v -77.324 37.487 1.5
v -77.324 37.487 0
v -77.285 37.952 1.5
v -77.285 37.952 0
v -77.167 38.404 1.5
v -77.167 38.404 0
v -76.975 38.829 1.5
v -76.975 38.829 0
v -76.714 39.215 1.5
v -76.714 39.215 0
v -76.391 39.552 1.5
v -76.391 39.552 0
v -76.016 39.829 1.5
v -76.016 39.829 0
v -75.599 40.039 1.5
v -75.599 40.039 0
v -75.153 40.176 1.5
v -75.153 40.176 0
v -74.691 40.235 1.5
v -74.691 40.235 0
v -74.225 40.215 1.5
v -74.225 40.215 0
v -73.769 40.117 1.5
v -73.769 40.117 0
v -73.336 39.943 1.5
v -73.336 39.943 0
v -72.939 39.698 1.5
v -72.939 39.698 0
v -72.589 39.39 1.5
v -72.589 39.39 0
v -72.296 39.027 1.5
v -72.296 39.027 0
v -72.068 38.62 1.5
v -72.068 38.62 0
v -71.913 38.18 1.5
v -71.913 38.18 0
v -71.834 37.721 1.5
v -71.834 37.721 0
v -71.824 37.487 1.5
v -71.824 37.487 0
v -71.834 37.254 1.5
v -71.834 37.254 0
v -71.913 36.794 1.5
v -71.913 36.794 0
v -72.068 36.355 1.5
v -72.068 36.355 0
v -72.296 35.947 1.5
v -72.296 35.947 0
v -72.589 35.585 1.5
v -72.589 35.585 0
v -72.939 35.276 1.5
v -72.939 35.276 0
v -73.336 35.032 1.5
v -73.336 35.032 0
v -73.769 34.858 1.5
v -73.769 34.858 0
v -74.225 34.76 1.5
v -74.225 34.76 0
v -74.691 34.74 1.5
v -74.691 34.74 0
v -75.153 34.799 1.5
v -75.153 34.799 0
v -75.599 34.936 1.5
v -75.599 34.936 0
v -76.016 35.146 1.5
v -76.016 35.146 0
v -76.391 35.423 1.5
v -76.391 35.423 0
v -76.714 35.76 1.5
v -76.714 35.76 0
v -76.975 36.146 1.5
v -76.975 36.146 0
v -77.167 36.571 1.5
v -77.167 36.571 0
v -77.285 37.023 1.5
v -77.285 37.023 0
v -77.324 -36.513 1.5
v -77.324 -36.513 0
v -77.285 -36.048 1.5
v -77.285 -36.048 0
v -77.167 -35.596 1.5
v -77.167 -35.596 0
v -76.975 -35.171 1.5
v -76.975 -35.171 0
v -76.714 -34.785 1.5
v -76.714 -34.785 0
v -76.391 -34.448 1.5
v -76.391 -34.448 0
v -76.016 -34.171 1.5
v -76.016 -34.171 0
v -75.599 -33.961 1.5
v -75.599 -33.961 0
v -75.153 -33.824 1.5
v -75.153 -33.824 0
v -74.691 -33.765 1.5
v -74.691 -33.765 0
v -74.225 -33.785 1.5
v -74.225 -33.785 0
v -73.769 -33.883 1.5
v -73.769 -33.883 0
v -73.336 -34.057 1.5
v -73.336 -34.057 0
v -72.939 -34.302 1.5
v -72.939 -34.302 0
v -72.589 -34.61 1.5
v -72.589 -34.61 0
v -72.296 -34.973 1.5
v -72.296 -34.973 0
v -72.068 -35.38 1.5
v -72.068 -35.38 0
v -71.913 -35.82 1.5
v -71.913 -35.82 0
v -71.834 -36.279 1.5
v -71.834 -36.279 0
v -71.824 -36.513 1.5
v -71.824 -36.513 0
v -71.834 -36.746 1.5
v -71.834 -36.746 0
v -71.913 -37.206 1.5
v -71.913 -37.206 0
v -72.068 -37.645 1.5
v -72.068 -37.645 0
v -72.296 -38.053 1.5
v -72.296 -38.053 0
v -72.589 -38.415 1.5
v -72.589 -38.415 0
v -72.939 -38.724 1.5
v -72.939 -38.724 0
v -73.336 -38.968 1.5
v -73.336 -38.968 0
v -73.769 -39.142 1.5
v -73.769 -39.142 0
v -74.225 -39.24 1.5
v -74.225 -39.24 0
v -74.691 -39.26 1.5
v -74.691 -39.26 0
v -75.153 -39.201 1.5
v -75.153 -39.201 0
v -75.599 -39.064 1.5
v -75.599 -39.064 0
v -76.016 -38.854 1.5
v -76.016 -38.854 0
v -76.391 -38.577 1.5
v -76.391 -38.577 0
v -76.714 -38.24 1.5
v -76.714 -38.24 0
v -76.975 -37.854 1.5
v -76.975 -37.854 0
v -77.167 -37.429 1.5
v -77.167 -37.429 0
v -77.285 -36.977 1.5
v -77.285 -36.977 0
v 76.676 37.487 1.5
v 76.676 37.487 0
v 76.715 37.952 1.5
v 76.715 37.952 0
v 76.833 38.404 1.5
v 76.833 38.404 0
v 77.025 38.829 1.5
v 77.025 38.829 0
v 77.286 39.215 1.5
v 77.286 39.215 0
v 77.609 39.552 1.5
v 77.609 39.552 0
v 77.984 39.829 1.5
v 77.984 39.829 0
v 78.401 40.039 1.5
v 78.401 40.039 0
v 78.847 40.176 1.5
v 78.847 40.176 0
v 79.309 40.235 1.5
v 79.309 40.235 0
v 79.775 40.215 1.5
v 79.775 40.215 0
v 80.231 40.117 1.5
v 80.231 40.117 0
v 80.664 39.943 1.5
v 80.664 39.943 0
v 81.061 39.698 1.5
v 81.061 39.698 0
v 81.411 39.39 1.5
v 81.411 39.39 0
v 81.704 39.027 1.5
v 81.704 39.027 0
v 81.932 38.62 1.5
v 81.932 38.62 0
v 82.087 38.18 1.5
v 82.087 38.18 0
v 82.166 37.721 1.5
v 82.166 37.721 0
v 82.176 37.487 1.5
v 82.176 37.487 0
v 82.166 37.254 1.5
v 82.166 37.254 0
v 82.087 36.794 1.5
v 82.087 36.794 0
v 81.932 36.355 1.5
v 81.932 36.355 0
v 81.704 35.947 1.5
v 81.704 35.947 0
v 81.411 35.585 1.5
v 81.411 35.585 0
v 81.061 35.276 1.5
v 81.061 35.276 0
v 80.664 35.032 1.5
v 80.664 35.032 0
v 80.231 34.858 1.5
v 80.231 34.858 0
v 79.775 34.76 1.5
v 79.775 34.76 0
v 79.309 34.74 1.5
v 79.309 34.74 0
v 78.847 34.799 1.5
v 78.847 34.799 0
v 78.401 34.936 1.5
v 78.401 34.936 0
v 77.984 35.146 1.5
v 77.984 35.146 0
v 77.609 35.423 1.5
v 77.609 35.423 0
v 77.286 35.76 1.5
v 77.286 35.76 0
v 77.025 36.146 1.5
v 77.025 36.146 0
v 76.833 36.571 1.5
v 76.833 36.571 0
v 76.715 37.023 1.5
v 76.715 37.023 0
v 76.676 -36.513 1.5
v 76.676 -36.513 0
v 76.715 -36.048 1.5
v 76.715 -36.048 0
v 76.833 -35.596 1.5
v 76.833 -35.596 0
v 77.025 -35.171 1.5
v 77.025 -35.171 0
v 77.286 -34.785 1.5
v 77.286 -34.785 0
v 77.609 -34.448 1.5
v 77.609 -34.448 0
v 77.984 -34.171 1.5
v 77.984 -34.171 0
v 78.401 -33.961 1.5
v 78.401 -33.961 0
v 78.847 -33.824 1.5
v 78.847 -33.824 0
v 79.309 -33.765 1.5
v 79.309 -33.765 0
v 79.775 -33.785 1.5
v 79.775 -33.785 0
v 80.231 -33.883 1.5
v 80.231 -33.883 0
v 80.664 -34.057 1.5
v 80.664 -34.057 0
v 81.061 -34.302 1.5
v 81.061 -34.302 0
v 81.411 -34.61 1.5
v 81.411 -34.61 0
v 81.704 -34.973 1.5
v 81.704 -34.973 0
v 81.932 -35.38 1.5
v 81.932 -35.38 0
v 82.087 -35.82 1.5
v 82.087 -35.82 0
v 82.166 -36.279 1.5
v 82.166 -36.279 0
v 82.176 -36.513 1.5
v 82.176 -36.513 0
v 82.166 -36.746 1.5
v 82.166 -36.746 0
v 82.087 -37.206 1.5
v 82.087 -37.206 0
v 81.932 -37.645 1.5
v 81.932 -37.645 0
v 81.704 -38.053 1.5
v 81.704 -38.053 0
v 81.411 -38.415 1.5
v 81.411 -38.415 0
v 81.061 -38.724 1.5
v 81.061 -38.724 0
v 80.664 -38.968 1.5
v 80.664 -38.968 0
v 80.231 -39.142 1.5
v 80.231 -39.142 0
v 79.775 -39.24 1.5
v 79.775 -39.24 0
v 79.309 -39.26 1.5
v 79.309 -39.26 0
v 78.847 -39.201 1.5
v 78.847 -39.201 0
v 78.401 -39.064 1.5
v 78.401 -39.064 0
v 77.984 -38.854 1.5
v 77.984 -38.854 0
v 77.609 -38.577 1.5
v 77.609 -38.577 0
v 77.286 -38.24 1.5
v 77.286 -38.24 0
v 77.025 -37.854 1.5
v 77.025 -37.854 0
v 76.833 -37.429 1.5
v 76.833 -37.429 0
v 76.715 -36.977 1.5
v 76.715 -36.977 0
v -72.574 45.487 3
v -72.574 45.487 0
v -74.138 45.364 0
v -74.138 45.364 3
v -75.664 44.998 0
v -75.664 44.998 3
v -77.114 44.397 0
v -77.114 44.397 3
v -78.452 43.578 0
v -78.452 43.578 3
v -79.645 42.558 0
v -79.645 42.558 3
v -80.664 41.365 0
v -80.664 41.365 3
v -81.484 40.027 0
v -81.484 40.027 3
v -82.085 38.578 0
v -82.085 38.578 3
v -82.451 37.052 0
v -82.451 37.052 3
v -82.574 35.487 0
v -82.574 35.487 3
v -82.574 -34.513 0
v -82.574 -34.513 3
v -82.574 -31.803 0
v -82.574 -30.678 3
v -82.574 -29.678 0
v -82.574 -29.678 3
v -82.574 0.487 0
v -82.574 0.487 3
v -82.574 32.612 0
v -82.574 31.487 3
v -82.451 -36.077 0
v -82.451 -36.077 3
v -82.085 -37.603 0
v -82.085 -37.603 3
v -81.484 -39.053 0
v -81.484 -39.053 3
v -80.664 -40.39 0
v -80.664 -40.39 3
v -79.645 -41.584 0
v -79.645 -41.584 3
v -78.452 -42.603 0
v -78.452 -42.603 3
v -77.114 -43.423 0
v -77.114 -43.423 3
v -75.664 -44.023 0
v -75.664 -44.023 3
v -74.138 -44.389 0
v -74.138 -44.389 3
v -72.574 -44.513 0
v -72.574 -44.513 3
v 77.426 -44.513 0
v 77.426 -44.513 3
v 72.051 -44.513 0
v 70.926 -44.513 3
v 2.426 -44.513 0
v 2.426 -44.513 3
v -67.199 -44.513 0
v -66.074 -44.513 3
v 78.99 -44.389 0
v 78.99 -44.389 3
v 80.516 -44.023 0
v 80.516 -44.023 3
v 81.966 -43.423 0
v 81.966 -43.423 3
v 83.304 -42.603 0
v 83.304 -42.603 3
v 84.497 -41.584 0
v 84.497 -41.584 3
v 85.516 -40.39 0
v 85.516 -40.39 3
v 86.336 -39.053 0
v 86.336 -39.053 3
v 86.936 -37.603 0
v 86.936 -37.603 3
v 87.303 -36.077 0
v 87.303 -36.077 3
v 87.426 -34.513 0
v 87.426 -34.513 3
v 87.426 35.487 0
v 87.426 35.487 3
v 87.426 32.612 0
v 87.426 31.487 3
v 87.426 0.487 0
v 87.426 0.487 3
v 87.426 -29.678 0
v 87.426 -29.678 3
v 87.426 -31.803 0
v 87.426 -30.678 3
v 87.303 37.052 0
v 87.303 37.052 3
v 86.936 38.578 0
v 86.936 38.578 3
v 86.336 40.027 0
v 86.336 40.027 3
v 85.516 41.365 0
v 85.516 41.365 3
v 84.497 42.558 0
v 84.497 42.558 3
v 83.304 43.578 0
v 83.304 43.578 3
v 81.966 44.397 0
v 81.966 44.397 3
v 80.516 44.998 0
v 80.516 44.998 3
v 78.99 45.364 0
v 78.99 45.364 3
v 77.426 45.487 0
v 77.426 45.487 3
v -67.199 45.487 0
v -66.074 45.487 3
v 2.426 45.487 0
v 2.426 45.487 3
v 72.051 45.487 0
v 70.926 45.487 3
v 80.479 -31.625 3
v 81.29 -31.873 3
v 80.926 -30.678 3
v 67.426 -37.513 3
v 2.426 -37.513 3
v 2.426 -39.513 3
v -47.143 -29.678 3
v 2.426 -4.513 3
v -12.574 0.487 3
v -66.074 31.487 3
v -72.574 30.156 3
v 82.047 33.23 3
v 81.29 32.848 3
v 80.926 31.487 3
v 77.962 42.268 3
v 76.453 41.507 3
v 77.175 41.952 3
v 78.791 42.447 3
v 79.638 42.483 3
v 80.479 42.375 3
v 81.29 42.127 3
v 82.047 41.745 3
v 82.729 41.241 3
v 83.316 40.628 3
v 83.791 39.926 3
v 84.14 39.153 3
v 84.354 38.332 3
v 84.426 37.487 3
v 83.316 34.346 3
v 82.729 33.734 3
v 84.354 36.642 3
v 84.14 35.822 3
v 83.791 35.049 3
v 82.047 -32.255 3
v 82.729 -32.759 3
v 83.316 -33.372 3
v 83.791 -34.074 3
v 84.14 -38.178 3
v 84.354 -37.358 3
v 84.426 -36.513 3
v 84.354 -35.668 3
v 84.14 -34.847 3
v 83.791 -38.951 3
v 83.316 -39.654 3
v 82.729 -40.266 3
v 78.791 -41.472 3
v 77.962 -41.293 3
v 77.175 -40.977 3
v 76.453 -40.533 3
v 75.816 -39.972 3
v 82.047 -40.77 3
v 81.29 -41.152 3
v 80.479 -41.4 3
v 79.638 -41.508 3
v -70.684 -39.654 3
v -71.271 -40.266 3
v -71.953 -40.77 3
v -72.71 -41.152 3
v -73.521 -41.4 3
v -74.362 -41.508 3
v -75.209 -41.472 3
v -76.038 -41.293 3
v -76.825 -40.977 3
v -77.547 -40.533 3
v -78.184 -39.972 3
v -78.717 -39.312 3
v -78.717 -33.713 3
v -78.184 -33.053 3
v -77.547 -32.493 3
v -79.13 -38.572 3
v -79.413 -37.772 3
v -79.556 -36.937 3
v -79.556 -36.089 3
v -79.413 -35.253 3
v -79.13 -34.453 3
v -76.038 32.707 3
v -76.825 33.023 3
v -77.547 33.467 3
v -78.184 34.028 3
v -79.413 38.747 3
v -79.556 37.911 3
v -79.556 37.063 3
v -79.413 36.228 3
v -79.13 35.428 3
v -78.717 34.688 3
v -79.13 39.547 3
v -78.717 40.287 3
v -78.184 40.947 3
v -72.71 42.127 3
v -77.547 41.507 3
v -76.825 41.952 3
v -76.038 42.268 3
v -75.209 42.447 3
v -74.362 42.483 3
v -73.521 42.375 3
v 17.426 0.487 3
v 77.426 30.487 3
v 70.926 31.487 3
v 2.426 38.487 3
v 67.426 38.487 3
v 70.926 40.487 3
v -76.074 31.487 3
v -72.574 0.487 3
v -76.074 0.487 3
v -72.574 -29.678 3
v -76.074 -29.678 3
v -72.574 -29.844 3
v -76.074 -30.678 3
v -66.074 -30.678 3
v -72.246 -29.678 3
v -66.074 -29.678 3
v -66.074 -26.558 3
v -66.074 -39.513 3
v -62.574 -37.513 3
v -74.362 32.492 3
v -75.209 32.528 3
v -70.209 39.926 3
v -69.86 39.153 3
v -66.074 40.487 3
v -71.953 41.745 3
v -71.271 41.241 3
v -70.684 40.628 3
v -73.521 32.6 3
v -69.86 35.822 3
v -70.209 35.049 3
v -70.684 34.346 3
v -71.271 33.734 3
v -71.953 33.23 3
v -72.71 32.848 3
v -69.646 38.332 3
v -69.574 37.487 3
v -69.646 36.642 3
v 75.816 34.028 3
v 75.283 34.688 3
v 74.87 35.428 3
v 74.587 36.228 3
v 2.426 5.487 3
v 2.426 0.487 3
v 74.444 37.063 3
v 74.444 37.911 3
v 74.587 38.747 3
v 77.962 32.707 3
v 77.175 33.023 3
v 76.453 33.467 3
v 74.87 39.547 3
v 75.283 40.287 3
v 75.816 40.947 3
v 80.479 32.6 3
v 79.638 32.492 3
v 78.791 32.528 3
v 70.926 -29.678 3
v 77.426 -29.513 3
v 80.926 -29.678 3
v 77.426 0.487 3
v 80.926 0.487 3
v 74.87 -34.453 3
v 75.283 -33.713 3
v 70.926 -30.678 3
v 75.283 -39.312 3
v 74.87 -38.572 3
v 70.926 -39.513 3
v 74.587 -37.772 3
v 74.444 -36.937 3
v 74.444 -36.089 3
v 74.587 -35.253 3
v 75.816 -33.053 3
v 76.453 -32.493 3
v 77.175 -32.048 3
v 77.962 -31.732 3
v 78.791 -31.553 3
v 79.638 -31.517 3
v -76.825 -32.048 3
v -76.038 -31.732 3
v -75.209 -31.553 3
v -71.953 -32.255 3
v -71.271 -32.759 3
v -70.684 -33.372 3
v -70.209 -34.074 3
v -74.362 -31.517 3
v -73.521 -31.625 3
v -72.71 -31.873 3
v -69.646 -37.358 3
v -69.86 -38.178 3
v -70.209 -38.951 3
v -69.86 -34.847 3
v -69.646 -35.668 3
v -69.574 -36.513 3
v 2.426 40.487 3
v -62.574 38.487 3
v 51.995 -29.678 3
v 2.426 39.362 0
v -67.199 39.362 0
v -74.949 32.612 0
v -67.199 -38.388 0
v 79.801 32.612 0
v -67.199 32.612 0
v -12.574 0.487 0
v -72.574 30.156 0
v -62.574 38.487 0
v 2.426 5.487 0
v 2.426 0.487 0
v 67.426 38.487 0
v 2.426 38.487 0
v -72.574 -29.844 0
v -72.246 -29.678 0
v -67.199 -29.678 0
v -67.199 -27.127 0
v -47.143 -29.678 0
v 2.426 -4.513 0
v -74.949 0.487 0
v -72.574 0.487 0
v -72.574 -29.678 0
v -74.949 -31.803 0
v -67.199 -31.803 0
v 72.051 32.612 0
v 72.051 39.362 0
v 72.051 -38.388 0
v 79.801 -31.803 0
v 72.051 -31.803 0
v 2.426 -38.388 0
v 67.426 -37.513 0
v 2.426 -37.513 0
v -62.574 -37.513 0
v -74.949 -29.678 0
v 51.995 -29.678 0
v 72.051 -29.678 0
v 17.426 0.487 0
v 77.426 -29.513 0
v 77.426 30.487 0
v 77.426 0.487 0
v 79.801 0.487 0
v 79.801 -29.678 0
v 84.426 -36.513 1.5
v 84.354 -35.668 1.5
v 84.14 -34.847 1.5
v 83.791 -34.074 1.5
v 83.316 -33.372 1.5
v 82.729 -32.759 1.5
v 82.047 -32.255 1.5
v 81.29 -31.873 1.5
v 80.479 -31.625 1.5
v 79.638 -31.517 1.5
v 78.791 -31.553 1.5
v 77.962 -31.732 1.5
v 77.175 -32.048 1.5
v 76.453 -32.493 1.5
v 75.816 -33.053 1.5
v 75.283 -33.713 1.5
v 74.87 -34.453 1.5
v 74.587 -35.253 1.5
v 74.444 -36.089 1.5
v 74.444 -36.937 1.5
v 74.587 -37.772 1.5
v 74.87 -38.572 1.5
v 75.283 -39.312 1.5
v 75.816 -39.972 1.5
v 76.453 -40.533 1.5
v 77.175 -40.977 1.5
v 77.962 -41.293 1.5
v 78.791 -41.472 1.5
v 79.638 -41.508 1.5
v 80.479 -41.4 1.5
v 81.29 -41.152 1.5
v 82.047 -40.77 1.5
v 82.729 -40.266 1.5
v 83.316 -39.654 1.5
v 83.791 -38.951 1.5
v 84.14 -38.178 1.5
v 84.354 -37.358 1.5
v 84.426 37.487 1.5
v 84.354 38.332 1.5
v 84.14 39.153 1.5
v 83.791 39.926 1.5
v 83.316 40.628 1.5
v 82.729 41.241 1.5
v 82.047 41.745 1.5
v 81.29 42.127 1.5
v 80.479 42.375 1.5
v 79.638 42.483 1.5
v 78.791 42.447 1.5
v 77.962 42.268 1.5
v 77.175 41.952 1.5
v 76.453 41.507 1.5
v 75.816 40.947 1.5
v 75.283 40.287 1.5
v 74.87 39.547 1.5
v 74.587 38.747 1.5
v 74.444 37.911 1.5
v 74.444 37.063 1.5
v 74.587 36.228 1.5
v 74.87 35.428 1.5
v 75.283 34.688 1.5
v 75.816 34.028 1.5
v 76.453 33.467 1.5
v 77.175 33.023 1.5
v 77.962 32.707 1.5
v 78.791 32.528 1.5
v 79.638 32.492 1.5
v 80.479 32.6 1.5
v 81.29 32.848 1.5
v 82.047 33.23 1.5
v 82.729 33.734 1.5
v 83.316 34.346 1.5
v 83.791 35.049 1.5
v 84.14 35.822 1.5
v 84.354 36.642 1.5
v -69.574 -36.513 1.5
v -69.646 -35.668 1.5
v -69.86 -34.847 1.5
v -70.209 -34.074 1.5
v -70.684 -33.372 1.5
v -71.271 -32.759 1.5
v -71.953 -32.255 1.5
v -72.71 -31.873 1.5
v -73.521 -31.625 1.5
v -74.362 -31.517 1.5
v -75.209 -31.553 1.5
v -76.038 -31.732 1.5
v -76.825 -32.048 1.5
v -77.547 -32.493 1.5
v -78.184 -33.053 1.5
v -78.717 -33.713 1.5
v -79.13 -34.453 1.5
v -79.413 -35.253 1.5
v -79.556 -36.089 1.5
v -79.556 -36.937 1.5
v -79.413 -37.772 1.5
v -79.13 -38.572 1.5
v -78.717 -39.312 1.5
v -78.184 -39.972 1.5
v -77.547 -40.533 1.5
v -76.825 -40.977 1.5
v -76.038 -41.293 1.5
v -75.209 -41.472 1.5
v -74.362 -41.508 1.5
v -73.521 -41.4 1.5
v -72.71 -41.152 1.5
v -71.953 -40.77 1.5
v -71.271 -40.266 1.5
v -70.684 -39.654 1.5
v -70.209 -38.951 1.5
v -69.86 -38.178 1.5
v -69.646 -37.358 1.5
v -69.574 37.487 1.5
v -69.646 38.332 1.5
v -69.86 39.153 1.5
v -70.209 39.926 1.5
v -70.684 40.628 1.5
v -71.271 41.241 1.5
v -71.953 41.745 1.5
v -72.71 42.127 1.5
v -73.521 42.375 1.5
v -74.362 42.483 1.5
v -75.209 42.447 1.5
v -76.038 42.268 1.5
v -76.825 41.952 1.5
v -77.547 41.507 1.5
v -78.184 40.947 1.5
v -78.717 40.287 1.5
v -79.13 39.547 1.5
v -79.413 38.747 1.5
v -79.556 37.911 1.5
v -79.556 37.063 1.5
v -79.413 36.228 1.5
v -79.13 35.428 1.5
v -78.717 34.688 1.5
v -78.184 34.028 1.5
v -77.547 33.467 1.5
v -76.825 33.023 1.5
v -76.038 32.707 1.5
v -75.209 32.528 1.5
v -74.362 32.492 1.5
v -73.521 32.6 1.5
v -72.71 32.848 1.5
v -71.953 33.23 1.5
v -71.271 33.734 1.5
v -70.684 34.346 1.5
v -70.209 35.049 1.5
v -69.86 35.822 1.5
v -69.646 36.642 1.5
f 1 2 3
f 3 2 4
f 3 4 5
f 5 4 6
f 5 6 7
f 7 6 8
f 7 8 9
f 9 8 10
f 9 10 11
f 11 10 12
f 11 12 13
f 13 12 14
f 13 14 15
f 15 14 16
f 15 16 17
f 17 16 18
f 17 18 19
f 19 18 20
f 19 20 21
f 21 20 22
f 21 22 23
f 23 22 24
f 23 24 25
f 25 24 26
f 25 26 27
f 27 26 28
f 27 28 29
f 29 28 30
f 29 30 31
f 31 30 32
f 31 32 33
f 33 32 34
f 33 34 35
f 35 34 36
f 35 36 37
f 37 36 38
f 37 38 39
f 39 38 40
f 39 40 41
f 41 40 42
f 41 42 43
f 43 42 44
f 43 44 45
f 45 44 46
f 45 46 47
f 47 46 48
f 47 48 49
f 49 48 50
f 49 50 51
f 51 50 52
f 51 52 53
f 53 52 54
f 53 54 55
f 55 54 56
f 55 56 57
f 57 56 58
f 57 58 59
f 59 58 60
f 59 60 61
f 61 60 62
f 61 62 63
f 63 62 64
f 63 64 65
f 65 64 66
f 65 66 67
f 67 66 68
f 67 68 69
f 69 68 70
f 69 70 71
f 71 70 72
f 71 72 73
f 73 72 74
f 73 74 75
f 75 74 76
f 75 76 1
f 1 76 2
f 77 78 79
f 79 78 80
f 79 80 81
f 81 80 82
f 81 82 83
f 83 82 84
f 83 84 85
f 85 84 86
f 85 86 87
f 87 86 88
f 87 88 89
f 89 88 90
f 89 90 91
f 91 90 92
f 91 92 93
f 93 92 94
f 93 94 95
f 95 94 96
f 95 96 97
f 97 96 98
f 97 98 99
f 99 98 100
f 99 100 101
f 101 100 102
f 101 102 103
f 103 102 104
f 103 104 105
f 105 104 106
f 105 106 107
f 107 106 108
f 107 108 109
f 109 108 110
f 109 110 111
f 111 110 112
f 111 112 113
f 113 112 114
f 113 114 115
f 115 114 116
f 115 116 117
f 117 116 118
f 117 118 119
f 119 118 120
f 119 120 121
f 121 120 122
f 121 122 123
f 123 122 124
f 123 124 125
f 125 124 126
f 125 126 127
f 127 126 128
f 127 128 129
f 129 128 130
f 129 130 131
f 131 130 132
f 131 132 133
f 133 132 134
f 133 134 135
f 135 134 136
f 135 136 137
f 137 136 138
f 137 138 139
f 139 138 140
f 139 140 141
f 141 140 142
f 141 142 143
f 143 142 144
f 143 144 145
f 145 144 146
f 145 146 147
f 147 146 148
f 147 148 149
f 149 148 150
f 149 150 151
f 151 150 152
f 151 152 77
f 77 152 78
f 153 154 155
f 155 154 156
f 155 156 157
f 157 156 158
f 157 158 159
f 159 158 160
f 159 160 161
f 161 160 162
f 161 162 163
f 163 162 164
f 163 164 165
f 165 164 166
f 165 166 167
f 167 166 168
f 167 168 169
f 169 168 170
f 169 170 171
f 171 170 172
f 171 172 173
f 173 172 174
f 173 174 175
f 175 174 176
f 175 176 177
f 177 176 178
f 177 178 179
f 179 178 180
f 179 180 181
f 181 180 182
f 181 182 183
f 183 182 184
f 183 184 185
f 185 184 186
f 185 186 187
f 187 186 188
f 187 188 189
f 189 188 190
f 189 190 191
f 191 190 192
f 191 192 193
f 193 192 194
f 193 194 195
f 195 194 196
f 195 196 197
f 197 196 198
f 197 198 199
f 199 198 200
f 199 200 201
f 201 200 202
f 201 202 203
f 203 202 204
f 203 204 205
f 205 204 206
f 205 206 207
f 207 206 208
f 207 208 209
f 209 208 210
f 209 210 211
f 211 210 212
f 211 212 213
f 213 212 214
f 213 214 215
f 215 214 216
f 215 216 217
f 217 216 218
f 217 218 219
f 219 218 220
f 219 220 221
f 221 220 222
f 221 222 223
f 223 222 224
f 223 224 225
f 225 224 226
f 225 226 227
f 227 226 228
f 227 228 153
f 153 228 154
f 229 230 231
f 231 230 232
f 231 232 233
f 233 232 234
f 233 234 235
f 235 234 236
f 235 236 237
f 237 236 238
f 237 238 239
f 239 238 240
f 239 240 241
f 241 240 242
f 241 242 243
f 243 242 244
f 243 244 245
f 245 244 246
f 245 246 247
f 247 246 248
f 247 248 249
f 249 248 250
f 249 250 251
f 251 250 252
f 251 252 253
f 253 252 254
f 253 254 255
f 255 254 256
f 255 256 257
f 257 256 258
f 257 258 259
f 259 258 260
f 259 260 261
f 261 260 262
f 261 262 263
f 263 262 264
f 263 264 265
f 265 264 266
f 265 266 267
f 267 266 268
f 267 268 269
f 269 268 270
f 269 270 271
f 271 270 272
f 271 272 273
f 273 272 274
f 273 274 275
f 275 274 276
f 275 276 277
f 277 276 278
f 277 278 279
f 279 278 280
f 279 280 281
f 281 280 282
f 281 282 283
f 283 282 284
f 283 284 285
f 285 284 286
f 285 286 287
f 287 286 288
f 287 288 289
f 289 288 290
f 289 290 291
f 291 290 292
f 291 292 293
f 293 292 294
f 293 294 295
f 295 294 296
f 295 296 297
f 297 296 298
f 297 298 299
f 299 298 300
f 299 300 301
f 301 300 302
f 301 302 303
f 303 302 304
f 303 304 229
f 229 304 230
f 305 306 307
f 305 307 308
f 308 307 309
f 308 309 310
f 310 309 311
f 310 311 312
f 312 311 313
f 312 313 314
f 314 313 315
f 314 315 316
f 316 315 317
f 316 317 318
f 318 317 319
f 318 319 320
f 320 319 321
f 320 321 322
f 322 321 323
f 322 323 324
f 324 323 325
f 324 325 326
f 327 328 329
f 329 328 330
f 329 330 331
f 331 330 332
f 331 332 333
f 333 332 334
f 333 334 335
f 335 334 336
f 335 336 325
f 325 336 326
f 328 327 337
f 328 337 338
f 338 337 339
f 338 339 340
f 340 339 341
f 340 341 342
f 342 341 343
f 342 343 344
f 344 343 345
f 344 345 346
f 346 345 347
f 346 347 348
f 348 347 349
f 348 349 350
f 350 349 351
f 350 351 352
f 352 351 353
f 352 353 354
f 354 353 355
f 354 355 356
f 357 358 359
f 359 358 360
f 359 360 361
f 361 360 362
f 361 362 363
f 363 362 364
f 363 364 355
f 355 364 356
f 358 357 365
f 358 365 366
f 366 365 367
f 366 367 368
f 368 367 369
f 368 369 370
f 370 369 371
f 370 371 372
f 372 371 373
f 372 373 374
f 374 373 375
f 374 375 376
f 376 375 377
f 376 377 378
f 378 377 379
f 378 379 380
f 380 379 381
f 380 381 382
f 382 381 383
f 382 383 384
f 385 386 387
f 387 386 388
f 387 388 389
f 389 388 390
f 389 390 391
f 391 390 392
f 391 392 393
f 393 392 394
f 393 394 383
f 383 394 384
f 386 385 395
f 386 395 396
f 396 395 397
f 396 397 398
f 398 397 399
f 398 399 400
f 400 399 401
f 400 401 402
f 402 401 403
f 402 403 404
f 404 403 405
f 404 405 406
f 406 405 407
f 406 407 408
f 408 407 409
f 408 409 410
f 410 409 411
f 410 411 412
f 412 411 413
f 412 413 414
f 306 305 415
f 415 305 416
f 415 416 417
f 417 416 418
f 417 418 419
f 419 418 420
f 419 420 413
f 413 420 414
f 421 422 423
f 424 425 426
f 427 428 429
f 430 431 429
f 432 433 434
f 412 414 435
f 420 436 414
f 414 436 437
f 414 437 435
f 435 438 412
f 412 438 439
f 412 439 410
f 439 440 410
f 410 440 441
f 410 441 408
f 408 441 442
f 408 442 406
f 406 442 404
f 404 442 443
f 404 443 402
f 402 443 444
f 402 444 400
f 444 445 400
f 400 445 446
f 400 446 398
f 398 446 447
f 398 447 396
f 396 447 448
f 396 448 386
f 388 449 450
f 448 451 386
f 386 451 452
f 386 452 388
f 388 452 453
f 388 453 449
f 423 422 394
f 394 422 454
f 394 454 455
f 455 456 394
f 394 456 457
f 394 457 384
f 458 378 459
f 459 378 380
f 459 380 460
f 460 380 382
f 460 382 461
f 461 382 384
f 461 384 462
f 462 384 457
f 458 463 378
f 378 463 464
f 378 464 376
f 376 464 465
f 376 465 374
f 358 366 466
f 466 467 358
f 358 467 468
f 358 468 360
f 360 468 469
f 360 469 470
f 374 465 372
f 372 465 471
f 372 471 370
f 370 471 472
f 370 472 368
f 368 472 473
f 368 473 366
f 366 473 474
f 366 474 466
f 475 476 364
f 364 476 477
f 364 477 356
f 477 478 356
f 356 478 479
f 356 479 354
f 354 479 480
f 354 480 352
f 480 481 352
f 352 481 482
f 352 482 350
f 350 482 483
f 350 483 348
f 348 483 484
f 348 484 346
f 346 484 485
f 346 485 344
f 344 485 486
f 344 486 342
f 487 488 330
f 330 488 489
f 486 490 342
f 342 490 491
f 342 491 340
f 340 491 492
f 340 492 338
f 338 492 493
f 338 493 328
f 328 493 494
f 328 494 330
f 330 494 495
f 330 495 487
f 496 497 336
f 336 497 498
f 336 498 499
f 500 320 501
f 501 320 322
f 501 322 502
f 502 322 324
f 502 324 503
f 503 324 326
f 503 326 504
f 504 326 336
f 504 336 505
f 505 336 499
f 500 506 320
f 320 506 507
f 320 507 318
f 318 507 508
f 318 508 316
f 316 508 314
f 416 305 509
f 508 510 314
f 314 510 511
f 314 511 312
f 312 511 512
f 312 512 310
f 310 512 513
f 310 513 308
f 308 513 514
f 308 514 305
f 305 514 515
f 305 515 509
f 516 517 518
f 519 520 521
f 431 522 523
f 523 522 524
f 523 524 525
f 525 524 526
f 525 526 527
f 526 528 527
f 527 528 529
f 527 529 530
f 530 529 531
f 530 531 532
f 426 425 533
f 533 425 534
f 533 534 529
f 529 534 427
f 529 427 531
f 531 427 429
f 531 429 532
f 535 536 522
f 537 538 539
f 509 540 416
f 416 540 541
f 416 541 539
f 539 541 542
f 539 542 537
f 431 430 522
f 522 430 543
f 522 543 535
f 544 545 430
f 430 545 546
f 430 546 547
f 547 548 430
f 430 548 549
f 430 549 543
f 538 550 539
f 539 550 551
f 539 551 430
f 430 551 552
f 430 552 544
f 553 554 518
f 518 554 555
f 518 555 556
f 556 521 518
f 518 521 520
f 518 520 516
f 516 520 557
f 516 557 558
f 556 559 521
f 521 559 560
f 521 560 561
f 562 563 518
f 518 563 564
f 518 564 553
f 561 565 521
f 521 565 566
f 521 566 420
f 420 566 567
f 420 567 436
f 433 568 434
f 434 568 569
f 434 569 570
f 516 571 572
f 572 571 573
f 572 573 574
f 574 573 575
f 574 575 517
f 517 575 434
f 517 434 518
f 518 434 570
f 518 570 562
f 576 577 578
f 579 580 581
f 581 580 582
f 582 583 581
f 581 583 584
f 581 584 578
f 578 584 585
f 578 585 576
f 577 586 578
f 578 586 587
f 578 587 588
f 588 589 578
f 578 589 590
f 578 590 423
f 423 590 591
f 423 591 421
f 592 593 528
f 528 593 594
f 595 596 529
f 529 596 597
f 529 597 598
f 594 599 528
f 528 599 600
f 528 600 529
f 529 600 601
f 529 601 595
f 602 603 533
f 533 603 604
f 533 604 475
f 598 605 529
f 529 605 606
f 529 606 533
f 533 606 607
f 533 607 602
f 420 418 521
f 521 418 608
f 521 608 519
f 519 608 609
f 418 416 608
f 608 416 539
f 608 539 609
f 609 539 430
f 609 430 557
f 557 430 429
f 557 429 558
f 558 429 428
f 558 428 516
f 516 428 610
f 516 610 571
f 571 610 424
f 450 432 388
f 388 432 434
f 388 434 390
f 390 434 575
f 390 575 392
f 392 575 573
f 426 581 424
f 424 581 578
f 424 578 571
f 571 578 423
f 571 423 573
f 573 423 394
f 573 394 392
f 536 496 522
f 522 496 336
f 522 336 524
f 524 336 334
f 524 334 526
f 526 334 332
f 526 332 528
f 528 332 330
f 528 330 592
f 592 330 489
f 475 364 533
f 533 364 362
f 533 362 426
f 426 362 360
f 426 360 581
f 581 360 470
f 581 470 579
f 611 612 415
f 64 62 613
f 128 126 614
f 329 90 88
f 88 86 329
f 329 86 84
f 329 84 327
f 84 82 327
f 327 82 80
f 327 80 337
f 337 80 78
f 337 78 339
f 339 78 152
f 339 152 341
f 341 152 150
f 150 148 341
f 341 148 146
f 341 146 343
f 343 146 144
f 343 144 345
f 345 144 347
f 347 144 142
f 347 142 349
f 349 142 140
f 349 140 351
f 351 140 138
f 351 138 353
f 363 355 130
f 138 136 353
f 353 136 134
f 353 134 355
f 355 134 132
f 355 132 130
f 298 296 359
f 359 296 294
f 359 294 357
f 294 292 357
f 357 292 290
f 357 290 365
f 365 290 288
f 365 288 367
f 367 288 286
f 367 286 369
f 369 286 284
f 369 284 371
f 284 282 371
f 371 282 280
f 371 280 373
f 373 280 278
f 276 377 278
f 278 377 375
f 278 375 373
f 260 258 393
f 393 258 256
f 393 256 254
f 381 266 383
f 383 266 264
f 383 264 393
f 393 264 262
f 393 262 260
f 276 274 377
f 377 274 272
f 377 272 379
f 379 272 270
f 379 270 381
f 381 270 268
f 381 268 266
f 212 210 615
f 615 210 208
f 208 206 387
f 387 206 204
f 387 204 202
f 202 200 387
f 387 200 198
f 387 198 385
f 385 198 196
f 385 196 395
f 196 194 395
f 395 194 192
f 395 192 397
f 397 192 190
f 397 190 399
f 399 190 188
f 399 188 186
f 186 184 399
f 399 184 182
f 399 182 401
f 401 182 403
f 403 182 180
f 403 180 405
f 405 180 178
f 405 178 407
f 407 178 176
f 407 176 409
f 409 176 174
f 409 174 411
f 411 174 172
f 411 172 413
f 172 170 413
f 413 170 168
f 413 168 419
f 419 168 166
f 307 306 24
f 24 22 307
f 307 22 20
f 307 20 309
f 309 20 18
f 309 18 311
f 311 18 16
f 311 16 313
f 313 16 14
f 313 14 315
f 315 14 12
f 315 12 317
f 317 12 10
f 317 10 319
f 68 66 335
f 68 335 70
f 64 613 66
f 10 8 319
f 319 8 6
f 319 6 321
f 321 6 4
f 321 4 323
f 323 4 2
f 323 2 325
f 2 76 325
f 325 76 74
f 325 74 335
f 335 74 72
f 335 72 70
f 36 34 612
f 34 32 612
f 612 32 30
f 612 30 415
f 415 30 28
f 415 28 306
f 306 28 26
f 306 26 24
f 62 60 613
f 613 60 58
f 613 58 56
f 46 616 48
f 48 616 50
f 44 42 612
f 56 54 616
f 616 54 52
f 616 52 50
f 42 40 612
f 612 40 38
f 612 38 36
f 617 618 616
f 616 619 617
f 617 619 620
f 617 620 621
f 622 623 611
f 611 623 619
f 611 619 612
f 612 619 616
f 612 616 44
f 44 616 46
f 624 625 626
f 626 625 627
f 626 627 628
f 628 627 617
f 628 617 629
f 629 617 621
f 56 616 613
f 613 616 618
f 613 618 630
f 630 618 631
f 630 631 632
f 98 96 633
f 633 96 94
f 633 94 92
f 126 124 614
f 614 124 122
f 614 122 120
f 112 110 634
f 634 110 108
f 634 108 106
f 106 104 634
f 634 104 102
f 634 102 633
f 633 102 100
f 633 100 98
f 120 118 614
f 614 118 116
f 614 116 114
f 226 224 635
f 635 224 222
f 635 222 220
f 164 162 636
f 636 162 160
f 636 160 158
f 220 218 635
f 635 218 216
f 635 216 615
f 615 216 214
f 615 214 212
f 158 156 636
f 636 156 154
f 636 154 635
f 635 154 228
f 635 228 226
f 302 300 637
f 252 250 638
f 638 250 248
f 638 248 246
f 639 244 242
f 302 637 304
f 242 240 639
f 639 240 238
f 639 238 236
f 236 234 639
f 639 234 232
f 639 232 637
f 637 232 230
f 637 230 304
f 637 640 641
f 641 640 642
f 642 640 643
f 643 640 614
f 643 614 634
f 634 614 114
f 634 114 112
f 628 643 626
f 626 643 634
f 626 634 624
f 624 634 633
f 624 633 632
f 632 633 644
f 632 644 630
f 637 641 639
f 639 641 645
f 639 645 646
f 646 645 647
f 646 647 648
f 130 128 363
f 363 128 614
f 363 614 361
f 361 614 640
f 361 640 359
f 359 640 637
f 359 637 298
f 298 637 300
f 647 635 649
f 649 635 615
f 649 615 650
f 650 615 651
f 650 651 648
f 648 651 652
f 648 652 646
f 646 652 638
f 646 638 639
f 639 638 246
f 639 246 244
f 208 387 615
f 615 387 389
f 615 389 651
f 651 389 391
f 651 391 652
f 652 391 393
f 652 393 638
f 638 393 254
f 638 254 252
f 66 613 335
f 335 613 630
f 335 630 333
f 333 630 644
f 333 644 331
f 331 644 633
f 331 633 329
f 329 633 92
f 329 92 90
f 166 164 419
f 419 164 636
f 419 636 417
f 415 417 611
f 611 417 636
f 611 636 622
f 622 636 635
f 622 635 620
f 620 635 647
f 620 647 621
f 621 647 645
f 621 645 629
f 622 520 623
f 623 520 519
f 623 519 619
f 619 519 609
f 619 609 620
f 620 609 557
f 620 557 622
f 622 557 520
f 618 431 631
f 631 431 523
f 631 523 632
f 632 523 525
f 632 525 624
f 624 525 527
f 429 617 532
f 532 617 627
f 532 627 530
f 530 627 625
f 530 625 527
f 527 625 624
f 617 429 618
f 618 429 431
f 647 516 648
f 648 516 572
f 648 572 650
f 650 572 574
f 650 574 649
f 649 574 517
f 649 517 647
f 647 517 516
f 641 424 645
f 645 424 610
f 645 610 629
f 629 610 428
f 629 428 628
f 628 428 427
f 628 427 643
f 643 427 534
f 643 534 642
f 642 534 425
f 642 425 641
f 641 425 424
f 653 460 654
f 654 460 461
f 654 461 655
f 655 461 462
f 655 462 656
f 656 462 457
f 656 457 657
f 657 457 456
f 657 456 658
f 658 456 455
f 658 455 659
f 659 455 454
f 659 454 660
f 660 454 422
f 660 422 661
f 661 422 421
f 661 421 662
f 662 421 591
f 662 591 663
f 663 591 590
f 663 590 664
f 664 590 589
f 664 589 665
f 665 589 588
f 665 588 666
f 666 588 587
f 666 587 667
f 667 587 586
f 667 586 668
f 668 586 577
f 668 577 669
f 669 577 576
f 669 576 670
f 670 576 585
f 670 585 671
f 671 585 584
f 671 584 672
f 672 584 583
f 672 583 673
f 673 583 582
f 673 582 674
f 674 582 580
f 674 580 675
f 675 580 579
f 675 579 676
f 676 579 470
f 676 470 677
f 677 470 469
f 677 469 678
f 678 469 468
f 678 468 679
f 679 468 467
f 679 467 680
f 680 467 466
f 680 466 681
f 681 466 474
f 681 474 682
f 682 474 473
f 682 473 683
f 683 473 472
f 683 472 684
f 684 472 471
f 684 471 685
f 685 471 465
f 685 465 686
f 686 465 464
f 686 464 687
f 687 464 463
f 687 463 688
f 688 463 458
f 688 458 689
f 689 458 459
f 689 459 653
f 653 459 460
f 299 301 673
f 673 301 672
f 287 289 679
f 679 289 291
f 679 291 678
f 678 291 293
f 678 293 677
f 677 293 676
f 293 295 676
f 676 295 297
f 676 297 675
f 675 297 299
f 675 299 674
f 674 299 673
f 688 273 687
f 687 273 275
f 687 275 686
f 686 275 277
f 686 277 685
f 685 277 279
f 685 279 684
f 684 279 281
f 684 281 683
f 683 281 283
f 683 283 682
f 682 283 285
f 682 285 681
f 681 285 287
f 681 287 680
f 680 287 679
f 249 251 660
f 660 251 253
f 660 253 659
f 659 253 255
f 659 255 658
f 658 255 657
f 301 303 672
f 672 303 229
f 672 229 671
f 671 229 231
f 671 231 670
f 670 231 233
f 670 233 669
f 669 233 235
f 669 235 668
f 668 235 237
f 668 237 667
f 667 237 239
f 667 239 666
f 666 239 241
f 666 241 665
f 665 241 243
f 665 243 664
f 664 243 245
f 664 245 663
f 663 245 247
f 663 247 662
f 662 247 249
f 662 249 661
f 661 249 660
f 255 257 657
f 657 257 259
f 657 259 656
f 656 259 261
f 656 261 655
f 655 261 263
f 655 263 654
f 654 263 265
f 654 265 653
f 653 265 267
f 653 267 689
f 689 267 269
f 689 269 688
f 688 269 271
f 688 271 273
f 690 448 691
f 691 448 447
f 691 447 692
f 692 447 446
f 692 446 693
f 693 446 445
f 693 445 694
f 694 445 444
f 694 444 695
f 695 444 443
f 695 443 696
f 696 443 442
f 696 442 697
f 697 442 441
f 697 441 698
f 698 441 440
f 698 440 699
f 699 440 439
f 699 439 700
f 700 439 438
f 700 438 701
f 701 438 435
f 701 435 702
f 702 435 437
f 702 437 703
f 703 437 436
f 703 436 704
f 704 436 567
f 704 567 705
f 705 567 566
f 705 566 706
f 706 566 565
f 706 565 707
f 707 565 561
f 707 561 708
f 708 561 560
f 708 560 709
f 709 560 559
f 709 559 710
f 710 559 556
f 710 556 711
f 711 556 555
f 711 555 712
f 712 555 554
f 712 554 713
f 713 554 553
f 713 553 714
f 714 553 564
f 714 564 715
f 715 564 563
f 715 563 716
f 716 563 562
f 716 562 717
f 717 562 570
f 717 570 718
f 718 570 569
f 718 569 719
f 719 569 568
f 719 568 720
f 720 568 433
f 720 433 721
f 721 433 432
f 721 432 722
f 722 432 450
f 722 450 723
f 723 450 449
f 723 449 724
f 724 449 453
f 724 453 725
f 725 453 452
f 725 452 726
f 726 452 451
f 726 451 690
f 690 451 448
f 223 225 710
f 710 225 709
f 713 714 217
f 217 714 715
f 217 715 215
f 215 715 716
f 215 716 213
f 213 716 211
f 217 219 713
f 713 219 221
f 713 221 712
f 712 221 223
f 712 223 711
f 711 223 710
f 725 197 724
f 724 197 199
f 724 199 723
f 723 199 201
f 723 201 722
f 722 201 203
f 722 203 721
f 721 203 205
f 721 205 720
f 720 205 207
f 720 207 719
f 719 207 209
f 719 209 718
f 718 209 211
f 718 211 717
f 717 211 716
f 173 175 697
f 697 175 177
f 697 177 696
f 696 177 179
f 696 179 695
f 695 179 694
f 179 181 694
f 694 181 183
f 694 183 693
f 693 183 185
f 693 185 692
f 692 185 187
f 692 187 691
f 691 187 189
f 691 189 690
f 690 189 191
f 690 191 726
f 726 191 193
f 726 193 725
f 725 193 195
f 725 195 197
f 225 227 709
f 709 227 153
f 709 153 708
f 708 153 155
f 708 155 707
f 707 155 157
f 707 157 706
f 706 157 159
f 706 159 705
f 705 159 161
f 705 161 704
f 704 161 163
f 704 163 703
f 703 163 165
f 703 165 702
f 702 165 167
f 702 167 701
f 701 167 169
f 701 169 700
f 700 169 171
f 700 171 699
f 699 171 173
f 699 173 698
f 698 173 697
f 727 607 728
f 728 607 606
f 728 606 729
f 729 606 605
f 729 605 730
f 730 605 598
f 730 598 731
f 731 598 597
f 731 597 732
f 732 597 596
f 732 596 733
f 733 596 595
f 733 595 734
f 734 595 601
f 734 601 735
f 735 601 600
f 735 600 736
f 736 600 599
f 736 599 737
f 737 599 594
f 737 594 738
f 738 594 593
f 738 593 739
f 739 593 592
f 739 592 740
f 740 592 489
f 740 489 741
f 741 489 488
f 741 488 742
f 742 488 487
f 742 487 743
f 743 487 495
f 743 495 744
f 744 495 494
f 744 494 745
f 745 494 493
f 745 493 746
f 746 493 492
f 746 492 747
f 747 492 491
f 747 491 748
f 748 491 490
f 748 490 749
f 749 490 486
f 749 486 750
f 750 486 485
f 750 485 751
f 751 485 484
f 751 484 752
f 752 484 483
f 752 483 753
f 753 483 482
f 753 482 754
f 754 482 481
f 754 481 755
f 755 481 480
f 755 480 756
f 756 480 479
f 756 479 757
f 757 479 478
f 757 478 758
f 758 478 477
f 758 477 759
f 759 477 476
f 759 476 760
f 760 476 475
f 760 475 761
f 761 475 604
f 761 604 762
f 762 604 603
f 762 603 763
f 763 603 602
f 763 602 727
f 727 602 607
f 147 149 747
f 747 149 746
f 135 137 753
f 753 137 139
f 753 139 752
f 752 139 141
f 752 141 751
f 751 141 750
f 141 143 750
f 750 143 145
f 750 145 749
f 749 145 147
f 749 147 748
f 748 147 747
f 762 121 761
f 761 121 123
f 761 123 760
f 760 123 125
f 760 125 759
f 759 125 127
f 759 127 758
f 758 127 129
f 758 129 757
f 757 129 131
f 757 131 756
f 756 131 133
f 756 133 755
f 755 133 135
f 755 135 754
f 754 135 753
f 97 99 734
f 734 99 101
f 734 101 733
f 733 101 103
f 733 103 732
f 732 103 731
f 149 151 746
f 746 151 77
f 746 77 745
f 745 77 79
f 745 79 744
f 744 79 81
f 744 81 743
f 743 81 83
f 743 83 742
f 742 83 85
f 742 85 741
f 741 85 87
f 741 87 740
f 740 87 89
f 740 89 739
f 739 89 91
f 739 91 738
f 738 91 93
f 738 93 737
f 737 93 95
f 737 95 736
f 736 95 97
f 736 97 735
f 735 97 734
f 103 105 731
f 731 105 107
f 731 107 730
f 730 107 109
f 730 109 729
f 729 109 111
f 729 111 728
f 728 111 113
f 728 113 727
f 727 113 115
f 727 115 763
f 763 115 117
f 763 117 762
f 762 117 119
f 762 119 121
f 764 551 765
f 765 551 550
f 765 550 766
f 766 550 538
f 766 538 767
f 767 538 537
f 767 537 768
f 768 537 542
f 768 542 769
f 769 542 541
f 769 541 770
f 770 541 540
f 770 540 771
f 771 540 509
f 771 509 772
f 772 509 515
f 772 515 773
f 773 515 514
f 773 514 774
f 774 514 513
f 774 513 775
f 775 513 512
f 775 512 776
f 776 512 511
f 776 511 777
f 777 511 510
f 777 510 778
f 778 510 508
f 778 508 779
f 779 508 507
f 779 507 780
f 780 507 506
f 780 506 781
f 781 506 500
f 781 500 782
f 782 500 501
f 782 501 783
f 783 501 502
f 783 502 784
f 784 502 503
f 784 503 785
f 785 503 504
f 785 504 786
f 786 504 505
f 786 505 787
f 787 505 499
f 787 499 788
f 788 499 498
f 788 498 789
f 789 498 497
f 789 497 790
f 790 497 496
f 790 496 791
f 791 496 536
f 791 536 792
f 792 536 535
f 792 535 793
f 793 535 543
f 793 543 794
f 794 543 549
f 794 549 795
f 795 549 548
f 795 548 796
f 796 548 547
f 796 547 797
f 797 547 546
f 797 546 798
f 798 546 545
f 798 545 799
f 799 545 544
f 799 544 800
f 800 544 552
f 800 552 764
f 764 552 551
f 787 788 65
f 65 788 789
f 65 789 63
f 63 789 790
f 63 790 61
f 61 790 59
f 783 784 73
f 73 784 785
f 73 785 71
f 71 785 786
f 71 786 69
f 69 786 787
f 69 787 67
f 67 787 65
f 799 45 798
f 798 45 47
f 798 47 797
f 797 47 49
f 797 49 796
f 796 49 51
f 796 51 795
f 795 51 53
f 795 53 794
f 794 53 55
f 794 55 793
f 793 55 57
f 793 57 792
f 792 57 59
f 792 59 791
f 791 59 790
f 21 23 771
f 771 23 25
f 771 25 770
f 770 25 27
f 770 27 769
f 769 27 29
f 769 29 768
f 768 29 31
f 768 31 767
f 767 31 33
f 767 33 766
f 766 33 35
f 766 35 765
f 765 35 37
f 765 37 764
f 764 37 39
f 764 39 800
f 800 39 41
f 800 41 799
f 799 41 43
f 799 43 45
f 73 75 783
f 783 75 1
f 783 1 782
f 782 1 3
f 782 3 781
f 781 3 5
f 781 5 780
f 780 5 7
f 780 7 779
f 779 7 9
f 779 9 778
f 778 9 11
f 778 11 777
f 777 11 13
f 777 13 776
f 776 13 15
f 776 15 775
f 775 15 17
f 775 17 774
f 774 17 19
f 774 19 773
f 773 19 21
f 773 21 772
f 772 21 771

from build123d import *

# Parameters (mm, degrees)
EXTRUDE_1_DEPTH          = 3
CUT_EXTRUDE_1_DEPTH      = 39
CUT_EXTRUDE_1_DEPTH_BACK = 10
SKETCH_2_R               = 2.75
SKETCH_3_R               = 5
CUT_EXTRUDE_2_DEPTH      = 1.5


with BuildPart() as part:
    # 草图1 → 凸台-拉伸1 (new body)
    with BuildSketch(Plane.XY):
        with BuildLine():
            Line((-72.574116531, 45.487390308), (77.425883469, 45.487390308))
            ThreePointArc((77.425883469, 45.487390308), (84.496951281, 42.558458119), (87.425883469, 35.487390308))
            Line((87.425883469, 35.487390308), (87.425883469, -34.512609692))
            ThreePointArc((87.425883469, -34.512609692), (84.496951281, -41.583677504), (77.425883469, -44.512609692))
            Line((77.425883469, -44.512609692), (-72.574116531, -44.512609692))
            ThreePointArc((-72.574116531, -44.512609692), (-79.645184343, -41.583677504), (-82.574116531, -34.512609692))
            Line((-82.574116531, -34.512609692), (-82.574116531, 35.487390308))
            ThreePointArc((-82.574116531, 35.487390308), (-79.645184343, 42.558458119), (-72.574116531, 45.487390308))
        make_face()
    extrude(amount=EXTRUDE_1_DEPTH)

    # 草图2 → 切除-拉伸1 (cut, two sides: drawn at the far end of the back side and taken through both)
    with BuildSketch(Plane.XY.offset(3).offset(-CUT_EXTRUDE_1_DEPTH_BACK)):
        with Locations((-74.574116531, 37.487390308)):
            Circle(SKETCH_2_R)
        with Locations((-74.574116531, -36.512609692)):
            Circle(SKETCH_2_R)
        with Locations((79.425883469, 37.487390308)):
            Circle(SKETCH_2_R)
        with Locations((79.425883469, -36.512609692)):
            Circle(SKETCH_2_R)
        Polygon((-62.574116531, 38.487390308), (2.425883469, 5.487390308), (67.425883469, 38.487390308), align=None)
        Polygon((-72.574116531, 30.156085606), (-12.574116531, 0.487390308), (-72.574116531, -29.843914394), align=None)
        Polygon((2.425883469, -4.512609692), (-62.574116531, -37.512609692), (67.425883469, -37.512609692), align=None)
        Polygon((17.425883469, 0.487390308), (77.425883469, 30.487390308), (77.425883469, -29.512609692), align=None)
    extrude(amount=CUT_EXTRUDE_1_DEPTH + CUT_EXTRUDE_1_DEPTH_BACK, mode=Mode.SUBTRACT)

    # 草图3 → 切除-拉伸2 (cut)
    with BuildSketch(Plane.XY.offset(3)):
        with Locations((-74.574116531, 37.487390308)):
            Circle(SKETCH_3_R)
        with Locations((79.425883469, 37.487390308)):
            Circle(SKETCH_3_R)
        with Locations((79.425883469, -36.512609692)):
            Circle(SKETCH_3_R)
        with Locations((-74.574116531, -36.512609692)):
            Circle(SKETCH_3_R)
    extrude(amount=-CUT_EXTRUDE_2_DEPTH, mode=Mode.SUBTRACT)


solid = part.part
